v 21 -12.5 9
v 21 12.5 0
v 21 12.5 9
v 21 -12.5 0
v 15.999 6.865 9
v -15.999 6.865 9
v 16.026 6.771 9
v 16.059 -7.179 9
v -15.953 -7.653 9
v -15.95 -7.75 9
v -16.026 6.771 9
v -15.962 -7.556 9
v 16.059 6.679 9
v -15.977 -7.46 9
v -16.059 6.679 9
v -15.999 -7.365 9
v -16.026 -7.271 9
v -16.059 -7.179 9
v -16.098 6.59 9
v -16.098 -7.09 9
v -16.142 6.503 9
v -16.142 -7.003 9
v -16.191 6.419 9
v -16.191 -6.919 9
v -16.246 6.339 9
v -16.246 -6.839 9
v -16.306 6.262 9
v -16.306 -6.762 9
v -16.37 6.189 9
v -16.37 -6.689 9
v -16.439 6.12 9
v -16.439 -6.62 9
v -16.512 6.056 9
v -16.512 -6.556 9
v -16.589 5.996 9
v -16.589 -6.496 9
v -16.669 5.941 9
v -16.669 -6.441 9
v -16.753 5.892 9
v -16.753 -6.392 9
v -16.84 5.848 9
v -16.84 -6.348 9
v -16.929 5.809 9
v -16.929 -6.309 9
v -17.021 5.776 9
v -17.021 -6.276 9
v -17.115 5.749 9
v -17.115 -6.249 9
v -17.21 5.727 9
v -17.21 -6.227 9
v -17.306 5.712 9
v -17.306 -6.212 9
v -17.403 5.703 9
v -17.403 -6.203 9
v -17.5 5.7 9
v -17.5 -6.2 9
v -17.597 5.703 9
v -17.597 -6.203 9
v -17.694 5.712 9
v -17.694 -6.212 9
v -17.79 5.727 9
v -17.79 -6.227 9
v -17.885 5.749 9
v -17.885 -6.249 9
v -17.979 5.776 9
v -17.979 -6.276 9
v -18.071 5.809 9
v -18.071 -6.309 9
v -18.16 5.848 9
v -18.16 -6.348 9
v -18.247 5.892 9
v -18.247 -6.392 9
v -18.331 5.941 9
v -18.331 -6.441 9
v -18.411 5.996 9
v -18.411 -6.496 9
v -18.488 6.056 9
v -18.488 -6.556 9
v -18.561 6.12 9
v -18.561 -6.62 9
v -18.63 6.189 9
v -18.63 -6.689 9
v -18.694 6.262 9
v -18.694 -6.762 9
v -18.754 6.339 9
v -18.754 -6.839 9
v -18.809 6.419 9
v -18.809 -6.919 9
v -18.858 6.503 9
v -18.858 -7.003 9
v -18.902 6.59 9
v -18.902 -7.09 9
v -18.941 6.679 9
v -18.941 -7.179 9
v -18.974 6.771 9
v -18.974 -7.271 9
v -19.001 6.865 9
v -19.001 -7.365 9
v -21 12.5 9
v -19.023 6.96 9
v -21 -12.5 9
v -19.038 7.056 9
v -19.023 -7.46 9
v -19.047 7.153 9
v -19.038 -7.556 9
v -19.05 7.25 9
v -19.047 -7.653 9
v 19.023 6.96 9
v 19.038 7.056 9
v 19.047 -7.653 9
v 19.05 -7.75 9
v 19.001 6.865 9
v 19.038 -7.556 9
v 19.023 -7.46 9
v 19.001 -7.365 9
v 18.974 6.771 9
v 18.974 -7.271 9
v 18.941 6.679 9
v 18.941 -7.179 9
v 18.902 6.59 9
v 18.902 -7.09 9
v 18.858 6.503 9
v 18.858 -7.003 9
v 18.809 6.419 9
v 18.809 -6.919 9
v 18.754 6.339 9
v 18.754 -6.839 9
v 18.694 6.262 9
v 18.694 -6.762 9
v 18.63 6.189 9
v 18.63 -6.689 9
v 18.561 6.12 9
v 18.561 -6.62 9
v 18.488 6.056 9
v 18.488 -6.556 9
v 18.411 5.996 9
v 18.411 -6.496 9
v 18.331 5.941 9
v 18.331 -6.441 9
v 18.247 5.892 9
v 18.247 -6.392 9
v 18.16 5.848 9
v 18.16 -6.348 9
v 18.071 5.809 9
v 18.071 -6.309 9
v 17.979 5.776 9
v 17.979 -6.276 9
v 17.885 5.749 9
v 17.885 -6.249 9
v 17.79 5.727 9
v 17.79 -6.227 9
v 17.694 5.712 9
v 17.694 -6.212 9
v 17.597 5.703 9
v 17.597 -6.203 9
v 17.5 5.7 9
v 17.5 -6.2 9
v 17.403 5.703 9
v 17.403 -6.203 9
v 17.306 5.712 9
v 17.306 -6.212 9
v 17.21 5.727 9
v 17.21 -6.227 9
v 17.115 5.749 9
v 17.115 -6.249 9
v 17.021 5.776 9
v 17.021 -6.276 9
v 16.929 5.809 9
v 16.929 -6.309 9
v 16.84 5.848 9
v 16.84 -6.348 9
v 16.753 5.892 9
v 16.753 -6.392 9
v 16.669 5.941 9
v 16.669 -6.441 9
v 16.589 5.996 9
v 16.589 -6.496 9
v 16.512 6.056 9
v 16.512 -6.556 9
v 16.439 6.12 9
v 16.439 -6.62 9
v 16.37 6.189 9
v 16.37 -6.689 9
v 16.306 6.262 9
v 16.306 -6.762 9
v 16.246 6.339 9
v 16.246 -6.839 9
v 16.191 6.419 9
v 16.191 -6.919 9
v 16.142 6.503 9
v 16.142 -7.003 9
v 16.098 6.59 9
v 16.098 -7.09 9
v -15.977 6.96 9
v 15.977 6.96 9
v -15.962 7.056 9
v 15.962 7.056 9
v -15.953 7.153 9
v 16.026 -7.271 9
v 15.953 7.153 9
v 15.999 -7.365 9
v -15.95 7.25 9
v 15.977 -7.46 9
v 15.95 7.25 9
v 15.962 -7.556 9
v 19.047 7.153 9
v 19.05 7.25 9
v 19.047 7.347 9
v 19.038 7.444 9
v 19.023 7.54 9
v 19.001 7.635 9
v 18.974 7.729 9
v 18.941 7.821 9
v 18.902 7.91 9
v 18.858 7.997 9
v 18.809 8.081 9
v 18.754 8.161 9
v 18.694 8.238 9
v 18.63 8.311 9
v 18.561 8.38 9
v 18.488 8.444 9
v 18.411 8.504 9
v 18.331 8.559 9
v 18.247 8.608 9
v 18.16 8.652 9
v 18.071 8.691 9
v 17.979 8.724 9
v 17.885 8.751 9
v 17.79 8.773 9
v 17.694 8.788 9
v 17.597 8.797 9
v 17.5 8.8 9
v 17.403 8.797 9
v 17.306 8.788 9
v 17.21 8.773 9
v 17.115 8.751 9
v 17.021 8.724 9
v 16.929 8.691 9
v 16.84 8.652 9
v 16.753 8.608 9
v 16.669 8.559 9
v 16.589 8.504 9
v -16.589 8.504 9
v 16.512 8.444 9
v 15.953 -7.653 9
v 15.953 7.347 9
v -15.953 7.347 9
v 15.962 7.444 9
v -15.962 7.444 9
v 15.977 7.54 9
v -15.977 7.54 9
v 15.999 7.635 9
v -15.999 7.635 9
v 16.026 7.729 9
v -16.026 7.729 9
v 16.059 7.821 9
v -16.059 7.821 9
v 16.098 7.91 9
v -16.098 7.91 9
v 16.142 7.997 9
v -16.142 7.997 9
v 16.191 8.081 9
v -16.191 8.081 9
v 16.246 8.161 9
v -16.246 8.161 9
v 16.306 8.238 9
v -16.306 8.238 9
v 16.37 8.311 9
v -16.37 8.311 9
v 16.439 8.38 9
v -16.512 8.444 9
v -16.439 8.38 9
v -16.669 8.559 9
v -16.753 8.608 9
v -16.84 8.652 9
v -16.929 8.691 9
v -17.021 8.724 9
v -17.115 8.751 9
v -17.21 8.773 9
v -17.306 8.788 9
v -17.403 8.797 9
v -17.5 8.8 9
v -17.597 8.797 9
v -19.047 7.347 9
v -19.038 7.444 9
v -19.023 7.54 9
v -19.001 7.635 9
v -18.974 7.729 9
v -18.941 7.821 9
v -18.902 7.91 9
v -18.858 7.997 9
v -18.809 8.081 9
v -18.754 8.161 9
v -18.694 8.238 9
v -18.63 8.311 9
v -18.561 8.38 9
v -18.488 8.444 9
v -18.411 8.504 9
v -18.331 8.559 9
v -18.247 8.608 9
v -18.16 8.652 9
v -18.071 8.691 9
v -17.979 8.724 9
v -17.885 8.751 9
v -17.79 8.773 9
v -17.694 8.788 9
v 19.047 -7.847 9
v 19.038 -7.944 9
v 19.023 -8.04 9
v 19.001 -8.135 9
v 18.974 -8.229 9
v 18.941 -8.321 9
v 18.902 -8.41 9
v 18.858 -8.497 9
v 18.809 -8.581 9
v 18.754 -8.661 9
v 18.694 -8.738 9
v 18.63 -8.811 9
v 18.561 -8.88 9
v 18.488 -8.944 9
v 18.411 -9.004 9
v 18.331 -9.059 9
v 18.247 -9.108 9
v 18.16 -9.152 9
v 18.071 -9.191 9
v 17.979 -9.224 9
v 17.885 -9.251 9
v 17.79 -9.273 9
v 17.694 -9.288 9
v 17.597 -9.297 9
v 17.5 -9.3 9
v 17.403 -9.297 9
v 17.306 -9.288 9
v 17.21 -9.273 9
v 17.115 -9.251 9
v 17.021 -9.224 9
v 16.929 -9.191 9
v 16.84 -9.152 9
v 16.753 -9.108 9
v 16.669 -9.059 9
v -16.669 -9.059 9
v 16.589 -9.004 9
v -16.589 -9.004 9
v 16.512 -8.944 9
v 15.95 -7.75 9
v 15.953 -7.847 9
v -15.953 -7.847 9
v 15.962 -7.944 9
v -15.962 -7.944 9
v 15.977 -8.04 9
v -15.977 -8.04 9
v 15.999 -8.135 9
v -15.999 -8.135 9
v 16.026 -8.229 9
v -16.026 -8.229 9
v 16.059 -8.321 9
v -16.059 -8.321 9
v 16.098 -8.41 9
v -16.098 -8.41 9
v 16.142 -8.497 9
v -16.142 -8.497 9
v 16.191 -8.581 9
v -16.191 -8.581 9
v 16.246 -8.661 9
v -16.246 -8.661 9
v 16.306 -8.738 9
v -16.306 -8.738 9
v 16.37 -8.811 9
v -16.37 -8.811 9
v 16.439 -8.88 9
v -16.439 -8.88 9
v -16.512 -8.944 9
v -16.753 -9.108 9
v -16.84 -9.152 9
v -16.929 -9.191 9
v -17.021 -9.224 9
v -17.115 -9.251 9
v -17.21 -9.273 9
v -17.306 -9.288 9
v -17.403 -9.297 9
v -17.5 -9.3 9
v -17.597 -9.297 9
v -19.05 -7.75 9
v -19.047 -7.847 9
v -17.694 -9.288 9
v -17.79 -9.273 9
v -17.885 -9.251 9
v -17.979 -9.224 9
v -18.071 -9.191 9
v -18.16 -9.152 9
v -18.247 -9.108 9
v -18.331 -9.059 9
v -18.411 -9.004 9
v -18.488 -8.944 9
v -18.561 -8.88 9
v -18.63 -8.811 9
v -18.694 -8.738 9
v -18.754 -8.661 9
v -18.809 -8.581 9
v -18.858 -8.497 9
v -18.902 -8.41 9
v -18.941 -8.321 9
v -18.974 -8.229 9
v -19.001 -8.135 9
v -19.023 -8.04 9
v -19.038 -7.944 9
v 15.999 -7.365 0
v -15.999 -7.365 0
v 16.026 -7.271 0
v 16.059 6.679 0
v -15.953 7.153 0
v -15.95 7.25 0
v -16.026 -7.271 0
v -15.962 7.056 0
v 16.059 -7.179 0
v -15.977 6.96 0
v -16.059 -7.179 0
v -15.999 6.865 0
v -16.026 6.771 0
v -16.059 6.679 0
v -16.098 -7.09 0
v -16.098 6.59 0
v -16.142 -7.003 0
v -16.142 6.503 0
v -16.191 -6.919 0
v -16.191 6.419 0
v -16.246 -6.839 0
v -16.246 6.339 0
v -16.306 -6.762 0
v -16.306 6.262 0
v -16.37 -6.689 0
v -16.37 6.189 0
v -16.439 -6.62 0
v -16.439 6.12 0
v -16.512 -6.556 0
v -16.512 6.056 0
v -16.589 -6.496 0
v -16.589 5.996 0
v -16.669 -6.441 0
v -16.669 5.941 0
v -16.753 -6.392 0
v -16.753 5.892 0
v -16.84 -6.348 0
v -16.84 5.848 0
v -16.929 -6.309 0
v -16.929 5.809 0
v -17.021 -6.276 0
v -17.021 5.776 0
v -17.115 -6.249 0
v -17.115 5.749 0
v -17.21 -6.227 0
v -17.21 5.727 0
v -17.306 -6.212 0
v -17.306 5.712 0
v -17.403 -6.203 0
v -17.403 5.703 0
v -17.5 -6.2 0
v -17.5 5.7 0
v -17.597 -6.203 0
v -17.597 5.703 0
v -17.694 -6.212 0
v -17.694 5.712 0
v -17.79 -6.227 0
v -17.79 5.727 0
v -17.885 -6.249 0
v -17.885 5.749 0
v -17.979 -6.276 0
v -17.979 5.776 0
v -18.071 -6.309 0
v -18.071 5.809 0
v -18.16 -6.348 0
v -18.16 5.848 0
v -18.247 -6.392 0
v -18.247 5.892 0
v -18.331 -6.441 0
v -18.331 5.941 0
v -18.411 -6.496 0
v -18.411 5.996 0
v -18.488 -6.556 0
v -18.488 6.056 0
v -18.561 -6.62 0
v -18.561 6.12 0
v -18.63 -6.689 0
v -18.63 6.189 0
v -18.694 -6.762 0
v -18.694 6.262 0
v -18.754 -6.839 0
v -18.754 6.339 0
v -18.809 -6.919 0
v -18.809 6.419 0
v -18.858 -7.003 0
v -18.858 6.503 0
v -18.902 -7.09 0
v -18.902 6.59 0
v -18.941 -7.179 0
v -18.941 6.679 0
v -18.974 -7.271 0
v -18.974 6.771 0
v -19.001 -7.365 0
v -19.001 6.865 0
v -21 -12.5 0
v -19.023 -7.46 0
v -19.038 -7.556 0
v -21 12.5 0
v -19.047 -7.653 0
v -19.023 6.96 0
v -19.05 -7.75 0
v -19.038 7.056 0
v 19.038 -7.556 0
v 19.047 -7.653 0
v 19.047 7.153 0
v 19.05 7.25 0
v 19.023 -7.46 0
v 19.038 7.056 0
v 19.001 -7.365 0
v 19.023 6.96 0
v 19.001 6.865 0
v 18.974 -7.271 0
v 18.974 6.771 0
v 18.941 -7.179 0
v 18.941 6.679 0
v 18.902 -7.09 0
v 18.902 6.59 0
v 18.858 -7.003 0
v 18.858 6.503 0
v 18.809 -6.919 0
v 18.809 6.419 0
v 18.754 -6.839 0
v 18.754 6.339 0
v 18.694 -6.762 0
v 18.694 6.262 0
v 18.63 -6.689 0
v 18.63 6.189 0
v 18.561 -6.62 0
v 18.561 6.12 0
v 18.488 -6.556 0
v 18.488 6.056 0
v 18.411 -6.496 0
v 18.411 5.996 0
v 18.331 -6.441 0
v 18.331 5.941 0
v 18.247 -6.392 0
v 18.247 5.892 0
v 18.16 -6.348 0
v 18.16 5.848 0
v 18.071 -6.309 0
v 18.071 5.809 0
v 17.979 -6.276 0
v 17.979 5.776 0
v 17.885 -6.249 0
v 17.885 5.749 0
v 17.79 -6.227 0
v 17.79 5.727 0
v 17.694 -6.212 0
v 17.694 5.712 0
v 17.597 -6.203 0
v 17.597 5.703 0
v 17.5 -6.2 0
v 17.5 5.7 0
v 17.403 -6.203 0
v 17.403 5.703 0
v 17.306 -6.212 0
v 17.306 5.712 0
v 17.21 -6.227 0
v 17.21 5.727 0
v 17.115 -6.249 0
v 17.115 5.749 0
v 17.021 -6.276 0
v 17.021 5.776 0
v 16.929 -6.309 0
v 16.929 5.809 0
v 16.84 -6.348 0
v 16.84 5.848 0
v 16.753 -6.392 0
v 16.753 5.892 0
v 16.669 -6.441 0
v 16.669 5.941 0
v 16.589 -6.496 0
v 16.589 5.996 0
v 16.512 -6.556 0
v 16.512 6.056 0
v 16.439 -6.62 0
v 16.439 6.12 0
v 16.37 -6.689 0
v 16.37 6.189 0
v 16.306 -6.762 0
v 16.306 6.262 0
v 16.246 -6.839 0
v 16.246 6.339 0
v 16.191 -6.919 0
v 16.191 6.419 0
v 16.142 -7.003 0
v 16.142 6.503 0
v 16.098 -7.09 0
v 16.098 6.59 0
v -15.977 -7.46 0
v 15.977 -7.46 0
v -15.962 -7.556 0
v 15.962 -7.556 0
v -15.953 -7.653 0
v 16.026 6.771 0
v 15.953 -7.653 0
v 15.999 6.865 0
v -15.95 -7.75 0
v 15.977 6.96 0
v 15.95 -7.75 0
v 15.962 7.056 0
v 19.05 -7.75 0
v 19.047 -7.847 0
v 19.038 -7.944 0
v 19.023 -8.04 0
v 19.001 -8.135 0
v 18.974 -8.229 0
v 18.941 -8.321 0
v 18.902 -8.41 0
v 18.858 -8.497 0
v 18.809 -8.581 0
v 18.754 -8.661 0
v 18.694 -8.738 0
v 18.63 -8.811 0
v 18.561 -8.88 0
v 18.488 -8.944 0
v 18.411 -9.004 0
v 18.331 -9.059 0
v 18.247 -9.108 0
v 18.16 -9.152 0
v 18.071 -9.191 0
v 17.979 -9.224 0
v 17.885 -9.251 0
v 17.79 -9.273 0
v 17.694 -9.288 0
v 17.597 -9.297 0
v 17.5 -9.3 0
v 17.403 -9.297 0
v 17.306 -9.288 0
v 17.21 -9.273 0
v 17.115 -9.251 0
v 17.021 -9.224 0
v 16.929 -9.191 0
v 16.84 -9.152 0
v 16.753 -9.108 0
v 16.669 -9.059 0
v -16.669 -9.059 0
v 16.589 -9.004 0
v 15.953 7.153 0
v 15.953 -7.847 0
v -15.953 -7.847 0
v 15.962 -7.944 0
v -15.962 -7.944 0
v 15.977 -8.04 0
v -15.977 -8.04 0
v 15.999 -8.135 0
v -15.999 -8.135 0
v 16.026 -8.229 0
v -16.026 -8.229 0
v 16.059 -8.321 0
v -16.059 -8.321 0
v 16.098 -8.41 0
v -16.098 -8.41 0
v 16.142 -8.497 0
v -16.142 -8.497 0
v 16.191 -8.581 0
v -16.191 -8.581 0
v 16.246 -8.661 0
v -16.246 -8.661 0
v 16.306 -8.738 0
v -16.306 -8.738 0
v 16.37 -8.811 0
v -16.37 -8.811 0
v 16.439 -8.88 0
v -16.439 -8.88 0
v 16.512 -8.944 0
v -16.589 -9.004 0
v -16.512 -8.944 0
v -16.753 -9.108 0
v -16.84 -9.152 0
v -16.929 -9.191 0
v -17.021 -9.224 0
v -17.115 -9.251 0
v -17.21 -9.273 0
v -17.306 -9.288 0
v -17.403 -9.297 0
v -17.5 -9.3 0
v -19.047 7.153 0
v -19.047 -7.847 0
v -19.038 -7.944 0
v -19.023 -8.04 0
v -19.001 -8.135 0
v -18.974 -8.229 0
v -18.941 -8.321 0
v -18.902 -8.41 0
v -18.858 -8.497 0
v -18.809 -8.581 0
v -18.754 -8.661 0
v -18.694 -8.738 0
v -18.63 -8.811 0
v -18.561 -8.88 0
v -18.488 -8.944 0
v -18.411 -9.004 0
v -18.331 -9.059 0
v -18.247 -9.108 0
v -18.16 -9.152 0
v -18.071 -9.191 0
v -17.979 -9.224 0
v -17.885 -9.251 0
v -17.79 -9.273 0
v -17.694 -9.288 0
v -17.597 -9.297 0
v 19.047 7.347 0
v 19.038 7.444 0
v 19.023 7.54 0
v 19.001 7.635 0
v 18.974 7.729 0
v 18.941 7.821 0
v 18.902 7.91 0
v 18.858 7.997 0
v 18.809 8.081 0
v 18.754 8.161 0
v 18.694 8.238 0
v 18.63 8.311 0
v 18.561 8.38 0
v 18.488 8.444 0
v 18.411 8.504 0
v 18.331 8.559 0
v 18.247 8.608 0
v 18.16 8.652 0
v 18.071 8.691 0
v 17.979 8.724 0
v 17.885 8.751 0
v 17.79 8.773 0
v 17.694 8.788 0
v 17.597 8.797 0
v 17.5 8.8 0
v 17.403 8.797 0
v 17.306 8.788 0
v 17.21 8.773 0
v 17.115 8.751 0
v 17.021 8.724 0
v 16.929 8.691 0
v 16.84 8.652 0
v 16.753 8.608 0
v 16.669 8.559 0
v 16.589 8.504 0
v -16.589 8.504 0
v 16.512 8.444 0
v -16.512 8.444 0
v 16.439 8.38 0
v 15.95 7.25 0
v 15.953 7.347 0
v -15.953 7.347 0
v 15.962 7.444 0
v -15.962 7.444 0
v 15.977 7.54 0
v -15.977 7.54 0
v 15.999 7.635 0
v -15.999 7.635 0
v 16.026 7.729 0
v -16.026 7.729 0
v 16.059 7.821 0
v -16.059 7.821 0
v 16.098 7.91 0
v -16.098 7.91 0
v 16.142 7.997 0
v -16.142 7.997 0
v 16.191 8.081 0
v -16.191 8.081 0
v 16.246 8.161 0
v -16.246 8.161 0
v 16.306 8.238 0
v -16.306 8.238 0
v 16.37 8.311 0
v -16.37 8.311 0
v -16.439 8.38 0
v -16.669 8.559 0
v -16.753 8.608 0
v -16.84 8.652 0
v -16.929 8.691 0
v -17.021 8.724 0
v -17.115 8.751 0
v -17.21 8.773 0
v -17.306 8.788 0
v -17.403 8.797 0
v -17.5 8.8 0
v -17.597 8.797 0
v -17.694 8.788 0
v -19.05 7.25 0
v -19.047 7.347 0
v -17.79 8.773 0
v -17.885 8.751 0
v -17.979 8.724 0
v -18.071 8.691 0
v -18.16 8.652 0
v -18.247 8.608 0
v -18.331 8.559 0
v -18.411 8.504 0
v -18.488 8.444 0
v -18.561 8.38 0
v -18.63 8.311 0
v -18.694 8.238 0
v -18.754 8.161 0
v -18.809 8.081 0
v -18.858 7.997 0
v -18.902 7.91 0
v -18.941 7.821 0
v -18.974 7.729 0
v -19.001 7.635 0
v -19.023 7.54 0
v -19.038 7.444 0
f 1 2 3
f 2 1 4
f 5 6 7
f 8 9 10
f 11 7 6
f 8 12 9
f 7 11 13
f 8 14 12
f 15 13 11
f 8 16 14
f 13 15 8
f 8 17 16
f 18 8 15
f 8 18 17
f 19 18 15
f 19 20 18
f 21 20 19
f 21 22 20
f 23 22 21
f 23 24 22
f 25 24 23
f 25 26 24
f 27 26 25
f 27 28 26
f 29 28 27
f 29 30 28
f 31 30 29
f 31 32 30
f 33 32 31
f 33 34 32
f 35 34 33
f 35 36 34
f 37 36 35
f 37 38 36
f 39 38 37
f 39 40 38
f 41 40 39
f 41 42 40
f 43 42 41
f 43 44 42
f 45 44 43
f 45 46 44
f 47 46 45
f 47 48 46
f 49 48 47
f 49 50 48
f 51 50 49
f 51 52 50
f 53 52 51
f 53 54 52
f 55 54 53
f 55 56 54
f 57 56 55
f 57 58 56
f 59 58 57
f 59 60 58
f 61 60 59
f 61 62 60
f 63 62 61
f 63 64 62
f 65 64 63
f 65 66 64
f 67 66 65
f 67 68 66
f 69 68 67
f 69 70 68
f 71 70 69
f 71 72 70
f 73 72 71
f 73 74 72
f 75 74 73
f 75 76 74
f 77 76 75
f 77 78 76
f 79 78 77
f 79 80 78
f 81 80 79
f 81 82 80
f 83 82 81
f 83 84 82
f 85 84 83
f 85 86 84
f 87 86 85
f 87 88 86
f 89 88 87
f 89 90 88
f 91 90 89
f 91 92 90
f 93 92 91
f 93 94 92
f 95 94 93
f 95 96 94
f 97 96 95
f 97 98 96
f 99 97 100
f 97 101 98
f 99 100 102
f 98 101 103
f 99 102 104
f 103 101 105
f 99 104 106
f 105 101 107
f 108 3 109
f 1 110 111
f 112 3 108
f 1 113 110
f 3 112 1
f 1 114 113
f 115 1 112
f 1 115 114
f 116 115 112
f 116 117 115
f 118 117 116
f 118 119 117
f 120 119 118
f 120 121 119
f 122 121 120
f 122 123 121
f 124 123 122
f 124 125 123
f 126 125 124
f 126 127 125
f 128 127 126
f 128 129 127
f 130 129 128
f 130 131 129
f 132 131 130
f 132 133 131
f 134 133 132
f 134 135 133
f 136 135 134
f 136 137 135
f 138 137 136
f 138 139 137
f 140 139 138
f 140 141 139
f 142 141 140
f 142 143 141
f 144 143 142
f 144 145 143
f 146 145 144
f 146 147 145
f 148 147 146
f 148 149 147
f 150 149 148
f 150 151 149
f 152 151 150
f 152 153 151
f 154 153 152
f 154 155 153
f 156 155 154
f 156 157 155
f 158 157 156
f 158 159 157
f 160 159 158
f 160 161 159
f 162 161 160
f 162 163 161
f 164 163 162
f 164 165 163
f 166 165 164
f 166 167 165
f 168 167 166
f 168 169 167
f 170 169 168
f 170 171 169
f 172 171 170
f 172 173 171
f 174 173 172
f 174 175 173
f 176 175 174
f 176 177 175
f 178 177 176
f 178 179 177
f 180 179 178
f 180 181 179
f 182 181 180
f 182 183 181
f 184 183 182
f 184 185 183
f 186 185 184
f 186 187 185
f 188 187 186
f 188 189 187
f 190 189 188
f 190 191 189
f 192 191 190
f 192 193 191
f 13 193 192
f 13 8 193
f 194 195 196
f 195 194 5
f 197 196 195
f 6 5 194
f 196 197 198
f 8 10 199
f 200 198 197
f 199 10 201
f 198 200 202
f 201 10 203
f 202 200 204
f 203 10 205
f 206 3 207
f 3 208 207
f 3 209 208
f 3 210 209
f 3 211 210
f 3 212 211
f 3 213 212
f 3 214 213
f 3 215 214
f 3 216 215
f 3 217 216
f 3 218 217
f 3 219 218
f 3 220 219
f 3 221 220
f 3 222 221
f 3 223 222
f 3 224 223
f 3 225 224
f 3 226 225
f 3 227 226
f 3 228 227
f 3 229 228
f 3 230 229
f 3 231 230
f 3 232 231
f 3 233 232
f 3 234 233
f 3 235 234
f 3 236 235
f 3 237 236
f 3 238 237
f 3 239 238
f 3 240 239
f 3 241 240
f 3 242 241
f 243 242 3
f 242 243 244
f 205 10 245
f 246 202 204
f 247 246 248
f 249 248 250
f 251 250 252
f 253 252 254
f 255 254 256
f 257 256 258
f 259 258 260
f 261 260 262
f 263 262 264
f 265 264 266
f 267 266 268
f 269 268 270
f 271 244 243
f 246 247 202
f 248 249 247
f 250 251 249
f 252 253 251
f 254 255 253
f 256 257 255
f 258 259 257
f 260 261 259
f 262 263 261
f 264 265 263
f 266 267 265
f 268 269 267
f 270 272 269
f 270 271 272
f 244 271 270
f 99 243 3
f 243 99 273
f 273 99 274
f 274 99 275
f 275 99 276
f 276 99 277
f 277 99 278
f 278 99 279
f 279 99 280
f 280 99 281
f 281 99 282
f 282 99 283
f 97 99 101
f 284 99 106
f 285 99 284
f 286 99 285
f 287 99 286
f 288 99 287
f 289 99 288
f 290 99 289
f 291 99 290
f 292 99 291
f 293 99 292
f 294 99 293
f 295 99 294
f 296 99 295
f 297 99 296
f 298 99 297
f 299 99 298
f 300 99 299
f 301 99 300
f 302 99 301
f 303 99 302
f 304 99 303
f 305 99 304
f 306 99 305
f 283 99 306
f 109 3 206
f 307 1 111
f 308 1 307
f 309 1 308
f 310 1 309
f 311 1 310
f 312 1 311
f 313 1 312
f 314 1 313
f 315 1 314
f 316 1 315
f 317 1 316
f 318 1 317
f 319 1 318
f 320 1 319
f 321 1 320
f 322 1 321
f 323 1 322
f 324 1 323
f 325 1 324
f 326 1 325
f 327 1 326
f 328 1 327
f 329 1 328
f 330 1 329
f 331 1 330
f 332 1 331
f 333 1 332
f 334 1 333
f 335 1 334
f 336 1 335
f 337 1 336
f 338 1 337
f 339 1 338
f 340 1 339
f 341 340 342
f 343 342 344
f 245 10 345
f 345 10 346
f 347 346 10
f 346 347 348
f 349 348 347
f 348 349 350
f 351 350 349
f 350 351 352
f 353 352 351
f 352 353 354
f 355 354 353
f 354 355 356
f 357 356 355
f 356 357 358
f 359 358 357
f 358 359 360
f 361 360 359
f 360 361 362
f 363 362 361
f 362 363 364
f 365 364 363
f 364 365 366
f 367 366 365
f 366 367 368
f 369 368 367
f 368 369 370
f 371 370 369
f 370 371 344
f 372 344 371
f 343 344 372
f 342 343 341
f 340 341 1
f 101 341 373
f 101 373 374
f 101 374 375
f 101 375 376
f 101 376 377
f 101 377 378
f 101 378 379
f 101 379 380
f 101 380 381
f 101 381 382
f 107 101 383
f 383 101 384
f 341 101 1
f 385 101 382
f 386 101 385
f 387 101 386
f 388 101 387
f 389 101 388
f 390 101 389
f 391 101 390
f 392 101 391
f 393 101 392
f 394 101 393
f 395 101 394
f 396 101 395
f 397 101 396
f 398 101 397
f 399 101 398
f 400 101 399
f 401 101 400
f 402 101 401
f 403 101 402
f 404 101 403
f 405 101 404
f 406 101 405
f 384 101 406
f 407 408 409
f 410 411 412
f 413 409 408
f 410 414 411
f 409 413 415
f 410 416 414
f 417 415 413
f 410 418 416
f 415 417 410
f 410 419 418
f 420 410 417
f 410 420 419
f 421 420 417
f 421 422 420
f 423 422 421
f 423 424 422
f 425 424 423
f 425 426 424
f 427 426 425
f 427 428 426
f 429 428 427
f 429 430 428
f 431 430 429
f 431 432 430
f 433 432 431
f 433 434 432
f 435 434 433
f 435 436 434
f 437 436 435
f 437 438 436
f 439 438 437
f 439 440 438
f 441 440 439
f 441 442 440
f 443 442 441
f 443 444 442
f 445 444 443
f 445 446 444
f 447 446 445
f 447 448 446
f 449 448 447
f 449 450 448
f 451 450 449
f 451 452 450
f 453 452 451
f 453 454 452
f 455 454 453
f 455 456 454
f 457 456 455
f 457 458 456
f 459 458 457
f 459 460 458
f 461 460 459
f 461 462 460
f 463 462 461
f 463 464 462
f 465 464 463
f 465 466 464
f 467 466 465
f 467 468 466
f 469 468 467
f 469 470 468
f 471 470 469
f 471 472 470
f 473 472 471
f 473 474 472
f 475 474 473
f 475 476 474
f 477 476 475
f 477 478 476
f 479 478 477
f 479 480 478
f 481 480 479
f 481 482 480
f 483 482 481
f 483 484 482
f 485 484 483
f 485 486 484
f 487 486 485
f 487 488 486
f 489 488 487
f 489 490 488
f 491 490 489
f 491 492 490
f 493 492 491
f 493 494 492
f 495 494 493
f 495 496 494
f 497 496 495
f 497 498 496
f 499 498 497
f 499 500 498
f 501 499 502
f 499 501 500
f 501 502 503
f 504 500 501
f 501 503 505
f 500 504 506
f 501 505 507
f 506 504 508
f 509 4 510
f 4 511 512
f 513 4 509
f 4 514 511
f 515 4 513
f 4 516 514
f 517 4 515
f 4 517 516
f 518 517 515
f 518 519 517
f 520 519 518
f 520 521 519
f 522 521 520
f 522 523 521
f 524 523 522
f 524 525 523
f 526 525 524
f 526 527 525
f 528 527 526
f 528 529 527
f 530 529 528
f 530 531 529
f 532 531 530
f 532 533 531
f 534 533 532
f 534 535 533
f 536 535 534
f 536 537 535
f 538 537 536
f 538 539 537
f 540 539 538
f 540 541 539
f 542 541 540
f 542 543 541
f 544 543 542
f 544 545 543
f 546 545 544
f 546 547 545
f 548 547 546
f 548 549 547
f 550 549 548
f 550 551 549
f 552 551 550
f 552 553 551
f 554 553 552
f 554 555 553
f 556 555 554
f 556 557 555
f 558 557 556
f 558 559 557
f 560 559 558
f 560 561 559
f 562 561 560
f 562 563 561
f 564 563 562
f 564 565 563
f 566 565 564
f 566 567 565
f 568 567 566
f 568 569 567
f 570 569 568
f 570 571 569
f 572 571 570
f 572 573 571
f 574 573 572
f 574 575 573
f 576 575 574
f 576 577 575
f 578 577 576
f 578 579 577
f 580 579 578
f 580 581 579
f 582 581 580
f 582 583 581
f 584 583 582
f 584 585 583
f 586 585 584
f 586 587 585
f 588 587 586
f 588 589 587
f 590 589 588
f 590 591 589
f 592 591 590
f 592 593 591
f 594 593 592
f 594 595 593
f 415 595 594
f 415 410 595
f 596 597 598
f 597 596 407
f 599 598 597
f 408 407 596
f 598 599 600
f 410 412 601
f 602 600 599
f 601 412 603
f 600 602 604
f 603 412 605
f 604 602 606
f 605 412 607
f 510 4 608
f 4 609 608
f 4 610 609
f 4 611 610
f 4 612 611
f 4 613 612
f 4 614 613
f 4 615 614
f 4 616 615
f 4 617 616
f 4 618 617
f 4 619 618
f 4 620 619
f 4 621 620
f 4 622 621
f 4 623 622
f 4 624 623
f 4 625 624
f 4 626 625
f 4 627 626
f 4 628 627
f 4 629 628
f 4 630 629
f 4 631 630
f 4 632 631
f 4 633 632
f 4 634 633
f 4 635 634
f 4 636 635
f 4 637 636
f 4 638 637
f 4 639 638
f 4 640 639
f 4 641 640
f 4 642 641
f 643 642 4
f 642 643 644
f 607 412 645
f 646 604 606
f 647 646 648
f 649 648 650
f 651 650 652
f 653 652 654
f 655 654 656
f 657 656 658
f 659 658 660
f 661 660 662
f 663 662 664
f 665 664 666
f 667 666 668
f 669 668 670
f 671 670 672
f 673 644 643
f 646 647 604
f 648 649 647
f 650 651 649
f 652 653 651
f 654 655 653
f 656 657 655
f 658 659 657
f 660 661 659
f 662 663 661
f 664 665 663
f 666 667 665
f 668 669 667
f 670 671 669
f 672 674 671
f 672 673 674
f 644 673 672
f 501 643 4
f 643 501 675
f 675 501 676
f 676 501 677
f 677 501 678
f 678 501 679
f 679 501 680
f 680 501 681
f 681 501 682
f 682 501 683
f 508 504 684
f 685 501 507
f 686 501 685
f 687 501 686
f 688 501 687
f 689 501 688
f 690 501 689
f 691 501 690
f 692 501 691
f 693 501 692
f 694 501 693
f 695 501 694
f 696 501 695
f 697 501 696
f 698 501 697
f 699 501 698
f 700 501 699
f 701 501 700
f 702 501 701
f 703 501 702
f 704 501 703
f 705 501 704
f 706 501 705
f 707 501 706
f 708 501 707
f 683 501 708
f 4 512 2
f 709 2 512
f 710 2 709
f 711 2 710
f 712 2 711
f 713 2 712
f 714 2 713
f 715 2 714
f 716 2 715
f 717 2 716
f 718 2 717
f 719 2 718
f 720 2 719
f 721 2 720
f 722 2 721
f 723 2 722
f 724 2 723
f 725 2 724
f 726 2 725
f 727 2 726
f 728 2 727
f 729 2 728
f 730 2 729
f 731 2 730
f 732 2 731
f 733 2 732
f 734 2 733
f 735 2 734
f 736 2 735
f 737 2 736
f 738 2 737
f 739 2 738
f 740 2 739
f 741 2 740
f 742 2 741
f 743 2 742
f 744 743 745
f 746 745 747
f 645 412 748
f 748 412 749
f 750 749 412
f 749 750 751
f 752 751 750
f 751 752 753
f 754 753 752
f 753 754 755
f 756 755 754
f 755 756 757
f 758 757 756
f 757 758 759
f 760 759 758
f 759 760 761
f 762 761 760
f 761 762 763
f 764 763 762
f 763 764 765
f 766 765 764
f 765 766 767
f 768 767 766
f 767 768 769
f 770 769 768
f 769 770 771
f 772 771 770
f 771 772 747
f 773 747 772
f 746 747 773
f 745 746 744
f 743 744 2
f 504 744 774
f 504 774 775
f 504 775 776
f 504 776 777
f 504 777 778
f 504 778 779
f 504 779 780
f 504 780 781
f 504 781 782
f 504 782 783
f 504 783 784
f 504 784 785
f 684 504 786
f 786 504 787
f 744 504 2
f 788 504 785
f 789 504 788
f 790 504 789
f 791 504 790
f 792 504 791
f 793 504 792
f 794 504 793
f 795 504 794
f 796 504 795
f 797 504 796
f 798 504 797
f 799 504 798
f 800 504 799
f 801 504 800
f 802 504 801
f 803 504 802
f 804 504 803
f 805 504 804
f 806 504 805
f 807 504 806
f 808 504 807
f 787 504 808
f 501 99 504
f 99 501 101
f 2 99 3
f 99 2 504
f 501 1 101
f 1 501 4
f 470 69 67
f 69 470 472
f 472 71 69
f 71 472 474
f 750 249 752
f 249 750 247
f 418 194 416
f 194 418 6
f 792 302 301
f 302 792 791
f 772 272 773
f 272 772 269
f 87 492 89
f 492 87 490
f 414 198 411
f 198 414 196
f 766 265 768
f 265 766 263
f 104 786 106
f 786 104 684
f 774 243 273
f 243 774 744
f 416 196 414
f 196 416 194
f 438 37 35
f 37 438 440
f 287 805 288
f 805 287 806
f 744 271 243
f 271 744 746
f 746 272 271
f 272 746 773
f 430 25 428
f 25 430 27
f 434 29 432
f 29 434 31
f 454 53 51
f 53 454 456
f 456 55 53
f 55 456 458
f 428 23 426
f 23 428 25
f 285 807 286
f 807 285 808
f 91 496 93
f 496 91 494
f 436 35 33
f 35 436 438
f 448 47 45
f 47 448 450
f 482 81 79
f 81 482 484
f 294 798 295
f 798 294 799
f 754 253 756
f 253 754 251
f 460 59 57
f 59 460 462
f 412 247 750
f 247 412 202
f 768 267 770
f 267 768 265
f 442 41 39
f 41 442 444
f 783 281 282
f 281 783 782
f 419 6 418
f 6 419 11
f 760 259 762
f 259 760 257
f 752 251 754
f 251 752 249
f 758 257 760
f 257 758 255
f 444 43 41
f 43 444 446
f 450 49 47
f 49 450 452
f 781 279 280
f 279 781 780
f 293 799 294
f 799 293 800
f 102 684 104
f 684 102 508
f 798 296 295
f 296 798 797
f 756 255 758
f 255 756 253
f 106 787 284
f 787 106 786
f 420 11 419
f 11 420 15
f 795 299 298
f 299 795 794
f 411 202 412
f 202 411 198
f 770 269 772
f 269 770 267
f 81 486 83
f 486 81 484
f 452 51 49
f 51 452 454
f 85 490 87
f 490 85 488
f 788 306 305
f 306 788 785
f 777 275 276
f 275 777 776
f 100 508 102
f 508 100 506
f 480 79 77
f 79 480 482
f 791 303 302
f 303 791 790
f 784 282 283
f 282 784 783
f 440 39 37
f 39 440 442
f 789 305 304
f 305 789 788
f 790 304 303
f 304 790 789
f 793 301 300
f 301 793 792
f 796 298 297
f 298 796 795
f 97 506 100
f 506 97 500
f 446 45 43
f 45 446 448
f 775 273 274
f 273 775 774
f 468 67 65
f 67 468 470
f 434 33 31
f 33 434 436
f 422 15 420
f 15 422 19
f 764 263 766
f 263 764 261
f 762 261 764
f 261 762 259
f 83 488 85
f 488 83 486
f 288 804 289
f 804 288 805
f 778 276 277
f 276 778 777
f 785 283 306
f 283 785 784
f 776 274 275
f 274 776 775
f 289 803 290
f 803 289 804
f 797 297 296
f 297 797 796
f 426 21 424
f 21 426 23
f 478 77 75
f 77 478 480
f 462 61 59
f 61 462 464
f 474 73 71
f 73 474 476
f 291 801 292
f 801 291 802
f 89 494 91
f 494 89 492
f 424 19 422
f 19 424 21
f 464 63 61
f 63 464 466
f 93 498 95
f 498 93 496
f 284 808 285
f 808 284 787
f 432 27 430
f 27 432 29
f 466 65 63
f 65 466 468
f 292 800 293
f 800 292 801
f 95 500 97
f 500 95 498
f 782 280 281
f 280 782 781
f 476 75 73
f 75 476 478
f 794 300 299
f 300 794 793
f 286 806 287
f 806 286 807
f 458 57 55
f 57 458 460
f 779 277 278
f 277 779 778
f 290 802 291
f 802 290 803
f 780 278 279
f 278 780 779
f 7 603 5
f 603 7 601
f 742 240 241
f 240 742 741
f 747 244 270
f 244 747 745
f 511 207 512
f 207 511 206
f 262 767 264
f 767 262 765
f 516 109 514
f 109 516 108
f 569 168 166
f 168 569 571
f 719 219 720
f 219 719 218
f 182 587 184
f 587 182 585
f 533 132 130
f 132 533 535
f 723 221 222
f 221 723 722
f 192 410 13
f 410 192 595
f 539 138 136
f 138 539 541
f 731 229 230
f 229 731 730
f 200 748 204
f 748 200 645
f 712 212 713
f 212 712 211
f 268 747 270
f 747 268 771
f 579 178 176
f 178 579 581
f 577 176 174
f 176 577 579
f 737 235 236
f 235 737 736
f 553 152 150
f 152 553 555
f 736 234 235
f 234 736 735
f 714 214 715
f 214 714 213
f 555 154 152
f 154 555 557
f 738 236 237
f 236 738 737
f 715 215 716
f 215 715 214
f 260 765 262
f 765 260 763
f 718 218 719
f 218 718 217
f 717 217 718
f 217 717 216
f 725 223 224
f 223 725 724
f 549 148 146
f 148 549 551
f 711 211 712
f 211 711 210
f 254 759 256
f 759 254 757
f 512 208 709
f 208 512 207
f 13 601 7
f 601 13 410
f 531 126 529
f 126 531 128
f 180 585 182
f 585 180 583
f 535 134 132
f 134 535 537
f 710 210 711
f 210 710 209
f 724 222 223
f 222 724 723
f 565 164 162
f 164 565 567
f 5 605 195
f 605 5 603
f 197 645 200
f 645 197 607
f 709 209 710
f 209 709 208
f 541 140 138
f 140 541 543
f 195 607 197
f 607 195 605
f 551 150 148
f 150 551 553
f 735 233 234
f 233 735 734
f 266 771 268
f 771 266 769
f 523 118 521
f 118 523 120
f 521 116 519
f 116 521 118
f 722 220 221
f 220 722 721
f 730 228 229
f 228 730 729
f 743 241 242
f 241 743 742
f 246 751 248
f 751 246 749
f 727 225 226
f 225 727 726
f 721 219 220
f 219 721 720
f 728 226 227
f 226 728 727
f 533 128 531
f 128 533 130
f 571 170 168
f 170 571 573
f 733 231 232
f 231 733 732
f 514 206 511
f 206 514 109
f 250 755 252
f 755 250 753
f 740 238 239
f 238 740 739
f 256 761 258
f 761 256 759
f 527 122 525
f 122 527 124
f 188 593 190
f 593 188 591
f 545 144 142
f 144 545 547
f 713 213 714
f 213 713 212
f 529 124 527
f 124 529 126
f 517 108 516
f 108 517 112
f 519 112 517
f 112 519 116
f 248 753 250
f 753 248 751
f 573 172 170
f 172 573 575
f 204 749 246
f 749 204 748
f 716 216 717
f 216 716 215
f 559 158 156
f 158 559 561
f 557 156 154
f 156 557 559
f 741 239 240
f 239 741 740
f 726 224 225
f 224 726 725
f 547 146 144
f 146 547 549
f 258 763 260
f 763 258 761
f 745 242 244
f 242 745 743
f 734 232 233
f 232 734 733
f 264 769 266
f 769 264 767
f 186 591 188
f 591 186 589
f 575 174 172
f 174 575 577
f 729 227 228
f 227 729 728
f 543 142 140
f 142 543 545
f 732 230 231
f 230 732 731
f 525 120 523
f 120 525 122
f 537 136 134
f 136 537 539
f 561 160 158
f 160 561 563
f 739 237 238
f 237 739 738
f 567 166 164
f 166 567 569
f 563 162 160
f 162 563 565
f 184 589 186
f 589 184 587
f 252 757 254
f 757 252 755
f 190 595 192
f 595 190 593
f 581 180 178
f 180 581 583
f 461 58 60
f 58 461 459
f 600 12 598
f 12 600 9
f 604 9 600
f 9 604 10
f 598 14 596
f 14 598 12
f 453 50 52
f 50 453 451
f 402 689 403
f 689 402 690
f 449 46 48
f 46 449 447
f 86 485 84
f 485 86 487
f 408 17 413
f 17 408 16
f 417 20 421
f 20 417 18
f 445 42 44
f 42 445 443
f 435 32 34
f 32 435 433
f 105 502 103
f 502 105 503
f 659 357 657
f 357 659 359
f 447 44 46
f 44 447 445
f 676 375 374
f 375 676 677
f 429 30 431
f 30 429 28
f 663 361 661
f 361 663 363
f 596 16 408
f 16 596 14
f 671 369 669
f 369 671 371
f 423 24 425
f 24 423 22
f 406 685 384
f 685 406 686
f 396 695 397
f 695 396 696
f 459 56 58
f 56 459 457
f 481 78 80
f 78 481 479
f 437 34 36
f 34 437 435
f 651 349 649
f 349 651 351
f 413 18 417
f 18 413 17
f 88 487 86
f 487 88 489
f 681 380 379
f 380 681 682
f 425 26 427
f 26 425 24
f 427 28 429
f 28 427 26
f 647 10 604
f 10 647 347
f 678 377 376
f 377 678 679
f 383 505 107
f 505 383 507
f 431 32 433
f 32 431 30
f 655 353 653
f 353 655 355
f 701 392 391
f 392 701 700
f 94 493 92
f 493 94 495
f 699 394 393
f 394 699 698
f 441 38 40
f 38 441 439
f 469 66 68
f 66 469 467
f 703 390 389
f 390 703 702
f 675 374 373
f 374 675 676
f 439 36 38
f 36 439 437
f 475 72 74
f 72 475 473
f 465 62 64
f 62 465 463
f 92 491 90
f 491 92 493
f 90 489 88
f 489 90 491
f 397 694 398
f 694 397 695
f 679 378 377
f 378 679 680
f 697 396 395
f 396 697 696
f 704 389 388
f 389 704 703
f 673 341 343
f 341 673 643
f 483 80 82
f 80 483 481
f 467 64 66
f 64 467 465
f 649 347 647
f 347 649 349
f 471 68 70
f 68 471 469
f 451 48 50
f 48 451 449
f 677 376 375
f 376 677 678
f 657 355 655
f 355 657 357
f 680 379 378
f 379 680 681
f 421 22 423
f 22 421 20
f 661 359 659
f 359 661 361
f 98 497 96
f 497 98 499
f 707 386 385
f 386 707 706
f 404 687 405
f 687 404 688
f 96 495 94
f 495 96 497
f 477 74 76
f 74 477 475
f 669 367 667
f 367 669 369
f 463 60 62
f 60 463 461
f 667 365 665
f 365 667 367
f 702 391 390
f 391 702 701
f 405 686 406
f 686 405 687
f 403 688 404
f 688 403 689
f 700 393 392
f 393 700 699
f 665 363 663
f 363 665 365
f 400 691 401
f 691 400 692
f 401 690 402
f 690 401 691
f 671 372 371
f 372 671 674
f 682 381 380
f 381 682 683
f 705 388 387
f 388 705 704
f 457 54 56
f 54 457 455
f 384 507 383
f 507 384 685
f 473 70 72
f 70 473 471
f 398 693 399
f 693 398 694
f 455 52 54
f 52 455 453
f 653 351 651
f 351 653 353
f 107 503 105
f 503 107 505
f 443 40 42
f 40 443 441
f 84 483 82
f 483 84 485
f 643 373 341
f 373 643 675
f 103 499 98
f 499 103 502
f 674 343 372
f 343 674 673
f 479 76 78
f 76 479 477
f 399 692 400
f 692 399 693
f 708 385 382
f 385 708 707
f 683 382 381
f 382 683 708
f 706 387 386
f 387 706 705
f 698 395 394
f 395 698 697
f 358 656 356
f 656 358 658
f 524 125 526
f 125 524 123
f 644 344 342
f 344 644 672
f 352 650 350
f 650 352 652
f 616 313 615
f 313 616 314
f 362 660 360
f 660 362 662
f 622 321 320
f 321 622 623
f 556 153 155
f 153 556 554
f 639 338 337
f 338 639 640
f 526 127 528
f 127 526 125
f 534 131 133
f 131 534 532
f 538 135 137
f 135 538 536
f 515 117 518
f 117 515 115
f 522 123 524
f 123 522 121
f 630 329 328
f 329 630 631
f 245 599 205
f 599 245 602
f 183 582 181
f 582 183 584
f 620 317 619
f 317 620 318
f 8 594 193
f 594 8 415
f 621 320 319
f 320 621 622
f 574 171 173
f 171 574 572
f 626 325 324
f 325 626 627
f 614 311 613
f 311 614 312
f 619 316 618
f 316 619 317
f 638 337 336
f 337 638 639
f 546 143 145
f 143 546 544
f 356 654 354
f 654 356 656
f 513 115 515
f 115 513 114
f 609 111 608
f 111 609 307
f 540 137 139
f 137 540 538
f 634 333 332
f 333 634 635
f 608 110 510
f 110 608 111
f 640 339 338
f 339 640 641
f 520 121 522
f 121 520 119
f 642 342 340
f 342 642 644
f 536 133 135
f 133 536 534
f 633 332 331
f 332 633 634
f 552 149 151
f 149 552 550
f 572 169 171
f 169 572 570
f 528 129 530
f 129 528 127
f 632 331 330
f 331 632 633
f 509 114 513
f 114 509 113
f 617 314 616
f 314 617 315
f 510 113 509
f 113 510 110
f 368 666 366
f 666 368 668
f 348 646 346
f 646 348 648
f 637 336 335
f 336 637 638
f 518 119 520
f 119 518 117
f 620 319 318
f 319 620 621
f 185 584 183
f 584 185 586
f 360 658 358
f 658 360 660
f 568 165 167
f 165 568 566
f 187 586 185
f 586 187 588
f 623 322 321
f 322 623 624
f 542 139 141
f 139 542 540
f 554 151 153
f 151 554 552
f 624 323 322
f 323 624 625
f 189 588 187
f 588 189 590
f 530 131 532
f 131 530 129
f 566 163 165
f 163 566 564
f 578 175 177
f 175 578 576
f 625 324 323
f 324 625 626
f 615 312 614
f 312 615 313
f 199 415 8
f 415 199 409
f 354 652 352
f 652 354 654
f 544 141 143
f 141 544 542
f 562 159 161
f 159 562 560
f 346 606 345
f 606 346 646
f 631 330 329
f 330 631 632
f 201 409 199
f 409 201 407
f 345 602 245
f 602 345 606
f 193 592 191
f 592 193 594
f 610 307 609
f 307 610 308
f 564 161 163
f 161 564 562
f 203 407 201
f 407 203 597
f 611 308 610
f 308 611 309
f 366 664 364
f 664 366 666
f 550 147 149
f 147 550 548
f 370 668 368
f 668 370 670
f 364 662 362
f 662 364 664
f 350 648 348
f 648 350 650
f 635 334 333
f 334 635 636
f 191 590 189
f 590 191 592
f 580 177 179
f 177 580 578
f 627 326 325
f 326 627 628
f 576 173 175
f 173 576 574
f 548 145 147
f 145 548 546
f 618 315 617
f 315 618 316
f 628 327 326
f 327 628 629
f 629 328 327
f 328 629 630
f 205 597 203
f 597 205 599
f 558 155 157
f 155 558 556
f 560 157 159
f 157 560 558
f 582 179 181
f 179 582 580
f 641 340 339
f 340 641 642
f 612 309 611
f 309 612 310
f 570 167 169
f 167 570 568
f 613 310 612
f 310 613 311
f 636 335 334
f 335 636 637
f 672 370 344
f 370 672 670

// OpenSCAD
$fn=100;

difference()
{
    translate([0, 0, 4.5]) cube([42, 25, 9], center=true);
    translate([-17.5, 7.25, -1]) cylinder(d=3.1, 12);
    translate([17.5, 7.25, -1]) cylinder(d=3.1, 12);
    translate([-17.5, -7.75, -1]) cylinder(d=3.1, 12);
    translate([17.5, -7.75, -1]) cylinder(d=3.1, 12);
}
